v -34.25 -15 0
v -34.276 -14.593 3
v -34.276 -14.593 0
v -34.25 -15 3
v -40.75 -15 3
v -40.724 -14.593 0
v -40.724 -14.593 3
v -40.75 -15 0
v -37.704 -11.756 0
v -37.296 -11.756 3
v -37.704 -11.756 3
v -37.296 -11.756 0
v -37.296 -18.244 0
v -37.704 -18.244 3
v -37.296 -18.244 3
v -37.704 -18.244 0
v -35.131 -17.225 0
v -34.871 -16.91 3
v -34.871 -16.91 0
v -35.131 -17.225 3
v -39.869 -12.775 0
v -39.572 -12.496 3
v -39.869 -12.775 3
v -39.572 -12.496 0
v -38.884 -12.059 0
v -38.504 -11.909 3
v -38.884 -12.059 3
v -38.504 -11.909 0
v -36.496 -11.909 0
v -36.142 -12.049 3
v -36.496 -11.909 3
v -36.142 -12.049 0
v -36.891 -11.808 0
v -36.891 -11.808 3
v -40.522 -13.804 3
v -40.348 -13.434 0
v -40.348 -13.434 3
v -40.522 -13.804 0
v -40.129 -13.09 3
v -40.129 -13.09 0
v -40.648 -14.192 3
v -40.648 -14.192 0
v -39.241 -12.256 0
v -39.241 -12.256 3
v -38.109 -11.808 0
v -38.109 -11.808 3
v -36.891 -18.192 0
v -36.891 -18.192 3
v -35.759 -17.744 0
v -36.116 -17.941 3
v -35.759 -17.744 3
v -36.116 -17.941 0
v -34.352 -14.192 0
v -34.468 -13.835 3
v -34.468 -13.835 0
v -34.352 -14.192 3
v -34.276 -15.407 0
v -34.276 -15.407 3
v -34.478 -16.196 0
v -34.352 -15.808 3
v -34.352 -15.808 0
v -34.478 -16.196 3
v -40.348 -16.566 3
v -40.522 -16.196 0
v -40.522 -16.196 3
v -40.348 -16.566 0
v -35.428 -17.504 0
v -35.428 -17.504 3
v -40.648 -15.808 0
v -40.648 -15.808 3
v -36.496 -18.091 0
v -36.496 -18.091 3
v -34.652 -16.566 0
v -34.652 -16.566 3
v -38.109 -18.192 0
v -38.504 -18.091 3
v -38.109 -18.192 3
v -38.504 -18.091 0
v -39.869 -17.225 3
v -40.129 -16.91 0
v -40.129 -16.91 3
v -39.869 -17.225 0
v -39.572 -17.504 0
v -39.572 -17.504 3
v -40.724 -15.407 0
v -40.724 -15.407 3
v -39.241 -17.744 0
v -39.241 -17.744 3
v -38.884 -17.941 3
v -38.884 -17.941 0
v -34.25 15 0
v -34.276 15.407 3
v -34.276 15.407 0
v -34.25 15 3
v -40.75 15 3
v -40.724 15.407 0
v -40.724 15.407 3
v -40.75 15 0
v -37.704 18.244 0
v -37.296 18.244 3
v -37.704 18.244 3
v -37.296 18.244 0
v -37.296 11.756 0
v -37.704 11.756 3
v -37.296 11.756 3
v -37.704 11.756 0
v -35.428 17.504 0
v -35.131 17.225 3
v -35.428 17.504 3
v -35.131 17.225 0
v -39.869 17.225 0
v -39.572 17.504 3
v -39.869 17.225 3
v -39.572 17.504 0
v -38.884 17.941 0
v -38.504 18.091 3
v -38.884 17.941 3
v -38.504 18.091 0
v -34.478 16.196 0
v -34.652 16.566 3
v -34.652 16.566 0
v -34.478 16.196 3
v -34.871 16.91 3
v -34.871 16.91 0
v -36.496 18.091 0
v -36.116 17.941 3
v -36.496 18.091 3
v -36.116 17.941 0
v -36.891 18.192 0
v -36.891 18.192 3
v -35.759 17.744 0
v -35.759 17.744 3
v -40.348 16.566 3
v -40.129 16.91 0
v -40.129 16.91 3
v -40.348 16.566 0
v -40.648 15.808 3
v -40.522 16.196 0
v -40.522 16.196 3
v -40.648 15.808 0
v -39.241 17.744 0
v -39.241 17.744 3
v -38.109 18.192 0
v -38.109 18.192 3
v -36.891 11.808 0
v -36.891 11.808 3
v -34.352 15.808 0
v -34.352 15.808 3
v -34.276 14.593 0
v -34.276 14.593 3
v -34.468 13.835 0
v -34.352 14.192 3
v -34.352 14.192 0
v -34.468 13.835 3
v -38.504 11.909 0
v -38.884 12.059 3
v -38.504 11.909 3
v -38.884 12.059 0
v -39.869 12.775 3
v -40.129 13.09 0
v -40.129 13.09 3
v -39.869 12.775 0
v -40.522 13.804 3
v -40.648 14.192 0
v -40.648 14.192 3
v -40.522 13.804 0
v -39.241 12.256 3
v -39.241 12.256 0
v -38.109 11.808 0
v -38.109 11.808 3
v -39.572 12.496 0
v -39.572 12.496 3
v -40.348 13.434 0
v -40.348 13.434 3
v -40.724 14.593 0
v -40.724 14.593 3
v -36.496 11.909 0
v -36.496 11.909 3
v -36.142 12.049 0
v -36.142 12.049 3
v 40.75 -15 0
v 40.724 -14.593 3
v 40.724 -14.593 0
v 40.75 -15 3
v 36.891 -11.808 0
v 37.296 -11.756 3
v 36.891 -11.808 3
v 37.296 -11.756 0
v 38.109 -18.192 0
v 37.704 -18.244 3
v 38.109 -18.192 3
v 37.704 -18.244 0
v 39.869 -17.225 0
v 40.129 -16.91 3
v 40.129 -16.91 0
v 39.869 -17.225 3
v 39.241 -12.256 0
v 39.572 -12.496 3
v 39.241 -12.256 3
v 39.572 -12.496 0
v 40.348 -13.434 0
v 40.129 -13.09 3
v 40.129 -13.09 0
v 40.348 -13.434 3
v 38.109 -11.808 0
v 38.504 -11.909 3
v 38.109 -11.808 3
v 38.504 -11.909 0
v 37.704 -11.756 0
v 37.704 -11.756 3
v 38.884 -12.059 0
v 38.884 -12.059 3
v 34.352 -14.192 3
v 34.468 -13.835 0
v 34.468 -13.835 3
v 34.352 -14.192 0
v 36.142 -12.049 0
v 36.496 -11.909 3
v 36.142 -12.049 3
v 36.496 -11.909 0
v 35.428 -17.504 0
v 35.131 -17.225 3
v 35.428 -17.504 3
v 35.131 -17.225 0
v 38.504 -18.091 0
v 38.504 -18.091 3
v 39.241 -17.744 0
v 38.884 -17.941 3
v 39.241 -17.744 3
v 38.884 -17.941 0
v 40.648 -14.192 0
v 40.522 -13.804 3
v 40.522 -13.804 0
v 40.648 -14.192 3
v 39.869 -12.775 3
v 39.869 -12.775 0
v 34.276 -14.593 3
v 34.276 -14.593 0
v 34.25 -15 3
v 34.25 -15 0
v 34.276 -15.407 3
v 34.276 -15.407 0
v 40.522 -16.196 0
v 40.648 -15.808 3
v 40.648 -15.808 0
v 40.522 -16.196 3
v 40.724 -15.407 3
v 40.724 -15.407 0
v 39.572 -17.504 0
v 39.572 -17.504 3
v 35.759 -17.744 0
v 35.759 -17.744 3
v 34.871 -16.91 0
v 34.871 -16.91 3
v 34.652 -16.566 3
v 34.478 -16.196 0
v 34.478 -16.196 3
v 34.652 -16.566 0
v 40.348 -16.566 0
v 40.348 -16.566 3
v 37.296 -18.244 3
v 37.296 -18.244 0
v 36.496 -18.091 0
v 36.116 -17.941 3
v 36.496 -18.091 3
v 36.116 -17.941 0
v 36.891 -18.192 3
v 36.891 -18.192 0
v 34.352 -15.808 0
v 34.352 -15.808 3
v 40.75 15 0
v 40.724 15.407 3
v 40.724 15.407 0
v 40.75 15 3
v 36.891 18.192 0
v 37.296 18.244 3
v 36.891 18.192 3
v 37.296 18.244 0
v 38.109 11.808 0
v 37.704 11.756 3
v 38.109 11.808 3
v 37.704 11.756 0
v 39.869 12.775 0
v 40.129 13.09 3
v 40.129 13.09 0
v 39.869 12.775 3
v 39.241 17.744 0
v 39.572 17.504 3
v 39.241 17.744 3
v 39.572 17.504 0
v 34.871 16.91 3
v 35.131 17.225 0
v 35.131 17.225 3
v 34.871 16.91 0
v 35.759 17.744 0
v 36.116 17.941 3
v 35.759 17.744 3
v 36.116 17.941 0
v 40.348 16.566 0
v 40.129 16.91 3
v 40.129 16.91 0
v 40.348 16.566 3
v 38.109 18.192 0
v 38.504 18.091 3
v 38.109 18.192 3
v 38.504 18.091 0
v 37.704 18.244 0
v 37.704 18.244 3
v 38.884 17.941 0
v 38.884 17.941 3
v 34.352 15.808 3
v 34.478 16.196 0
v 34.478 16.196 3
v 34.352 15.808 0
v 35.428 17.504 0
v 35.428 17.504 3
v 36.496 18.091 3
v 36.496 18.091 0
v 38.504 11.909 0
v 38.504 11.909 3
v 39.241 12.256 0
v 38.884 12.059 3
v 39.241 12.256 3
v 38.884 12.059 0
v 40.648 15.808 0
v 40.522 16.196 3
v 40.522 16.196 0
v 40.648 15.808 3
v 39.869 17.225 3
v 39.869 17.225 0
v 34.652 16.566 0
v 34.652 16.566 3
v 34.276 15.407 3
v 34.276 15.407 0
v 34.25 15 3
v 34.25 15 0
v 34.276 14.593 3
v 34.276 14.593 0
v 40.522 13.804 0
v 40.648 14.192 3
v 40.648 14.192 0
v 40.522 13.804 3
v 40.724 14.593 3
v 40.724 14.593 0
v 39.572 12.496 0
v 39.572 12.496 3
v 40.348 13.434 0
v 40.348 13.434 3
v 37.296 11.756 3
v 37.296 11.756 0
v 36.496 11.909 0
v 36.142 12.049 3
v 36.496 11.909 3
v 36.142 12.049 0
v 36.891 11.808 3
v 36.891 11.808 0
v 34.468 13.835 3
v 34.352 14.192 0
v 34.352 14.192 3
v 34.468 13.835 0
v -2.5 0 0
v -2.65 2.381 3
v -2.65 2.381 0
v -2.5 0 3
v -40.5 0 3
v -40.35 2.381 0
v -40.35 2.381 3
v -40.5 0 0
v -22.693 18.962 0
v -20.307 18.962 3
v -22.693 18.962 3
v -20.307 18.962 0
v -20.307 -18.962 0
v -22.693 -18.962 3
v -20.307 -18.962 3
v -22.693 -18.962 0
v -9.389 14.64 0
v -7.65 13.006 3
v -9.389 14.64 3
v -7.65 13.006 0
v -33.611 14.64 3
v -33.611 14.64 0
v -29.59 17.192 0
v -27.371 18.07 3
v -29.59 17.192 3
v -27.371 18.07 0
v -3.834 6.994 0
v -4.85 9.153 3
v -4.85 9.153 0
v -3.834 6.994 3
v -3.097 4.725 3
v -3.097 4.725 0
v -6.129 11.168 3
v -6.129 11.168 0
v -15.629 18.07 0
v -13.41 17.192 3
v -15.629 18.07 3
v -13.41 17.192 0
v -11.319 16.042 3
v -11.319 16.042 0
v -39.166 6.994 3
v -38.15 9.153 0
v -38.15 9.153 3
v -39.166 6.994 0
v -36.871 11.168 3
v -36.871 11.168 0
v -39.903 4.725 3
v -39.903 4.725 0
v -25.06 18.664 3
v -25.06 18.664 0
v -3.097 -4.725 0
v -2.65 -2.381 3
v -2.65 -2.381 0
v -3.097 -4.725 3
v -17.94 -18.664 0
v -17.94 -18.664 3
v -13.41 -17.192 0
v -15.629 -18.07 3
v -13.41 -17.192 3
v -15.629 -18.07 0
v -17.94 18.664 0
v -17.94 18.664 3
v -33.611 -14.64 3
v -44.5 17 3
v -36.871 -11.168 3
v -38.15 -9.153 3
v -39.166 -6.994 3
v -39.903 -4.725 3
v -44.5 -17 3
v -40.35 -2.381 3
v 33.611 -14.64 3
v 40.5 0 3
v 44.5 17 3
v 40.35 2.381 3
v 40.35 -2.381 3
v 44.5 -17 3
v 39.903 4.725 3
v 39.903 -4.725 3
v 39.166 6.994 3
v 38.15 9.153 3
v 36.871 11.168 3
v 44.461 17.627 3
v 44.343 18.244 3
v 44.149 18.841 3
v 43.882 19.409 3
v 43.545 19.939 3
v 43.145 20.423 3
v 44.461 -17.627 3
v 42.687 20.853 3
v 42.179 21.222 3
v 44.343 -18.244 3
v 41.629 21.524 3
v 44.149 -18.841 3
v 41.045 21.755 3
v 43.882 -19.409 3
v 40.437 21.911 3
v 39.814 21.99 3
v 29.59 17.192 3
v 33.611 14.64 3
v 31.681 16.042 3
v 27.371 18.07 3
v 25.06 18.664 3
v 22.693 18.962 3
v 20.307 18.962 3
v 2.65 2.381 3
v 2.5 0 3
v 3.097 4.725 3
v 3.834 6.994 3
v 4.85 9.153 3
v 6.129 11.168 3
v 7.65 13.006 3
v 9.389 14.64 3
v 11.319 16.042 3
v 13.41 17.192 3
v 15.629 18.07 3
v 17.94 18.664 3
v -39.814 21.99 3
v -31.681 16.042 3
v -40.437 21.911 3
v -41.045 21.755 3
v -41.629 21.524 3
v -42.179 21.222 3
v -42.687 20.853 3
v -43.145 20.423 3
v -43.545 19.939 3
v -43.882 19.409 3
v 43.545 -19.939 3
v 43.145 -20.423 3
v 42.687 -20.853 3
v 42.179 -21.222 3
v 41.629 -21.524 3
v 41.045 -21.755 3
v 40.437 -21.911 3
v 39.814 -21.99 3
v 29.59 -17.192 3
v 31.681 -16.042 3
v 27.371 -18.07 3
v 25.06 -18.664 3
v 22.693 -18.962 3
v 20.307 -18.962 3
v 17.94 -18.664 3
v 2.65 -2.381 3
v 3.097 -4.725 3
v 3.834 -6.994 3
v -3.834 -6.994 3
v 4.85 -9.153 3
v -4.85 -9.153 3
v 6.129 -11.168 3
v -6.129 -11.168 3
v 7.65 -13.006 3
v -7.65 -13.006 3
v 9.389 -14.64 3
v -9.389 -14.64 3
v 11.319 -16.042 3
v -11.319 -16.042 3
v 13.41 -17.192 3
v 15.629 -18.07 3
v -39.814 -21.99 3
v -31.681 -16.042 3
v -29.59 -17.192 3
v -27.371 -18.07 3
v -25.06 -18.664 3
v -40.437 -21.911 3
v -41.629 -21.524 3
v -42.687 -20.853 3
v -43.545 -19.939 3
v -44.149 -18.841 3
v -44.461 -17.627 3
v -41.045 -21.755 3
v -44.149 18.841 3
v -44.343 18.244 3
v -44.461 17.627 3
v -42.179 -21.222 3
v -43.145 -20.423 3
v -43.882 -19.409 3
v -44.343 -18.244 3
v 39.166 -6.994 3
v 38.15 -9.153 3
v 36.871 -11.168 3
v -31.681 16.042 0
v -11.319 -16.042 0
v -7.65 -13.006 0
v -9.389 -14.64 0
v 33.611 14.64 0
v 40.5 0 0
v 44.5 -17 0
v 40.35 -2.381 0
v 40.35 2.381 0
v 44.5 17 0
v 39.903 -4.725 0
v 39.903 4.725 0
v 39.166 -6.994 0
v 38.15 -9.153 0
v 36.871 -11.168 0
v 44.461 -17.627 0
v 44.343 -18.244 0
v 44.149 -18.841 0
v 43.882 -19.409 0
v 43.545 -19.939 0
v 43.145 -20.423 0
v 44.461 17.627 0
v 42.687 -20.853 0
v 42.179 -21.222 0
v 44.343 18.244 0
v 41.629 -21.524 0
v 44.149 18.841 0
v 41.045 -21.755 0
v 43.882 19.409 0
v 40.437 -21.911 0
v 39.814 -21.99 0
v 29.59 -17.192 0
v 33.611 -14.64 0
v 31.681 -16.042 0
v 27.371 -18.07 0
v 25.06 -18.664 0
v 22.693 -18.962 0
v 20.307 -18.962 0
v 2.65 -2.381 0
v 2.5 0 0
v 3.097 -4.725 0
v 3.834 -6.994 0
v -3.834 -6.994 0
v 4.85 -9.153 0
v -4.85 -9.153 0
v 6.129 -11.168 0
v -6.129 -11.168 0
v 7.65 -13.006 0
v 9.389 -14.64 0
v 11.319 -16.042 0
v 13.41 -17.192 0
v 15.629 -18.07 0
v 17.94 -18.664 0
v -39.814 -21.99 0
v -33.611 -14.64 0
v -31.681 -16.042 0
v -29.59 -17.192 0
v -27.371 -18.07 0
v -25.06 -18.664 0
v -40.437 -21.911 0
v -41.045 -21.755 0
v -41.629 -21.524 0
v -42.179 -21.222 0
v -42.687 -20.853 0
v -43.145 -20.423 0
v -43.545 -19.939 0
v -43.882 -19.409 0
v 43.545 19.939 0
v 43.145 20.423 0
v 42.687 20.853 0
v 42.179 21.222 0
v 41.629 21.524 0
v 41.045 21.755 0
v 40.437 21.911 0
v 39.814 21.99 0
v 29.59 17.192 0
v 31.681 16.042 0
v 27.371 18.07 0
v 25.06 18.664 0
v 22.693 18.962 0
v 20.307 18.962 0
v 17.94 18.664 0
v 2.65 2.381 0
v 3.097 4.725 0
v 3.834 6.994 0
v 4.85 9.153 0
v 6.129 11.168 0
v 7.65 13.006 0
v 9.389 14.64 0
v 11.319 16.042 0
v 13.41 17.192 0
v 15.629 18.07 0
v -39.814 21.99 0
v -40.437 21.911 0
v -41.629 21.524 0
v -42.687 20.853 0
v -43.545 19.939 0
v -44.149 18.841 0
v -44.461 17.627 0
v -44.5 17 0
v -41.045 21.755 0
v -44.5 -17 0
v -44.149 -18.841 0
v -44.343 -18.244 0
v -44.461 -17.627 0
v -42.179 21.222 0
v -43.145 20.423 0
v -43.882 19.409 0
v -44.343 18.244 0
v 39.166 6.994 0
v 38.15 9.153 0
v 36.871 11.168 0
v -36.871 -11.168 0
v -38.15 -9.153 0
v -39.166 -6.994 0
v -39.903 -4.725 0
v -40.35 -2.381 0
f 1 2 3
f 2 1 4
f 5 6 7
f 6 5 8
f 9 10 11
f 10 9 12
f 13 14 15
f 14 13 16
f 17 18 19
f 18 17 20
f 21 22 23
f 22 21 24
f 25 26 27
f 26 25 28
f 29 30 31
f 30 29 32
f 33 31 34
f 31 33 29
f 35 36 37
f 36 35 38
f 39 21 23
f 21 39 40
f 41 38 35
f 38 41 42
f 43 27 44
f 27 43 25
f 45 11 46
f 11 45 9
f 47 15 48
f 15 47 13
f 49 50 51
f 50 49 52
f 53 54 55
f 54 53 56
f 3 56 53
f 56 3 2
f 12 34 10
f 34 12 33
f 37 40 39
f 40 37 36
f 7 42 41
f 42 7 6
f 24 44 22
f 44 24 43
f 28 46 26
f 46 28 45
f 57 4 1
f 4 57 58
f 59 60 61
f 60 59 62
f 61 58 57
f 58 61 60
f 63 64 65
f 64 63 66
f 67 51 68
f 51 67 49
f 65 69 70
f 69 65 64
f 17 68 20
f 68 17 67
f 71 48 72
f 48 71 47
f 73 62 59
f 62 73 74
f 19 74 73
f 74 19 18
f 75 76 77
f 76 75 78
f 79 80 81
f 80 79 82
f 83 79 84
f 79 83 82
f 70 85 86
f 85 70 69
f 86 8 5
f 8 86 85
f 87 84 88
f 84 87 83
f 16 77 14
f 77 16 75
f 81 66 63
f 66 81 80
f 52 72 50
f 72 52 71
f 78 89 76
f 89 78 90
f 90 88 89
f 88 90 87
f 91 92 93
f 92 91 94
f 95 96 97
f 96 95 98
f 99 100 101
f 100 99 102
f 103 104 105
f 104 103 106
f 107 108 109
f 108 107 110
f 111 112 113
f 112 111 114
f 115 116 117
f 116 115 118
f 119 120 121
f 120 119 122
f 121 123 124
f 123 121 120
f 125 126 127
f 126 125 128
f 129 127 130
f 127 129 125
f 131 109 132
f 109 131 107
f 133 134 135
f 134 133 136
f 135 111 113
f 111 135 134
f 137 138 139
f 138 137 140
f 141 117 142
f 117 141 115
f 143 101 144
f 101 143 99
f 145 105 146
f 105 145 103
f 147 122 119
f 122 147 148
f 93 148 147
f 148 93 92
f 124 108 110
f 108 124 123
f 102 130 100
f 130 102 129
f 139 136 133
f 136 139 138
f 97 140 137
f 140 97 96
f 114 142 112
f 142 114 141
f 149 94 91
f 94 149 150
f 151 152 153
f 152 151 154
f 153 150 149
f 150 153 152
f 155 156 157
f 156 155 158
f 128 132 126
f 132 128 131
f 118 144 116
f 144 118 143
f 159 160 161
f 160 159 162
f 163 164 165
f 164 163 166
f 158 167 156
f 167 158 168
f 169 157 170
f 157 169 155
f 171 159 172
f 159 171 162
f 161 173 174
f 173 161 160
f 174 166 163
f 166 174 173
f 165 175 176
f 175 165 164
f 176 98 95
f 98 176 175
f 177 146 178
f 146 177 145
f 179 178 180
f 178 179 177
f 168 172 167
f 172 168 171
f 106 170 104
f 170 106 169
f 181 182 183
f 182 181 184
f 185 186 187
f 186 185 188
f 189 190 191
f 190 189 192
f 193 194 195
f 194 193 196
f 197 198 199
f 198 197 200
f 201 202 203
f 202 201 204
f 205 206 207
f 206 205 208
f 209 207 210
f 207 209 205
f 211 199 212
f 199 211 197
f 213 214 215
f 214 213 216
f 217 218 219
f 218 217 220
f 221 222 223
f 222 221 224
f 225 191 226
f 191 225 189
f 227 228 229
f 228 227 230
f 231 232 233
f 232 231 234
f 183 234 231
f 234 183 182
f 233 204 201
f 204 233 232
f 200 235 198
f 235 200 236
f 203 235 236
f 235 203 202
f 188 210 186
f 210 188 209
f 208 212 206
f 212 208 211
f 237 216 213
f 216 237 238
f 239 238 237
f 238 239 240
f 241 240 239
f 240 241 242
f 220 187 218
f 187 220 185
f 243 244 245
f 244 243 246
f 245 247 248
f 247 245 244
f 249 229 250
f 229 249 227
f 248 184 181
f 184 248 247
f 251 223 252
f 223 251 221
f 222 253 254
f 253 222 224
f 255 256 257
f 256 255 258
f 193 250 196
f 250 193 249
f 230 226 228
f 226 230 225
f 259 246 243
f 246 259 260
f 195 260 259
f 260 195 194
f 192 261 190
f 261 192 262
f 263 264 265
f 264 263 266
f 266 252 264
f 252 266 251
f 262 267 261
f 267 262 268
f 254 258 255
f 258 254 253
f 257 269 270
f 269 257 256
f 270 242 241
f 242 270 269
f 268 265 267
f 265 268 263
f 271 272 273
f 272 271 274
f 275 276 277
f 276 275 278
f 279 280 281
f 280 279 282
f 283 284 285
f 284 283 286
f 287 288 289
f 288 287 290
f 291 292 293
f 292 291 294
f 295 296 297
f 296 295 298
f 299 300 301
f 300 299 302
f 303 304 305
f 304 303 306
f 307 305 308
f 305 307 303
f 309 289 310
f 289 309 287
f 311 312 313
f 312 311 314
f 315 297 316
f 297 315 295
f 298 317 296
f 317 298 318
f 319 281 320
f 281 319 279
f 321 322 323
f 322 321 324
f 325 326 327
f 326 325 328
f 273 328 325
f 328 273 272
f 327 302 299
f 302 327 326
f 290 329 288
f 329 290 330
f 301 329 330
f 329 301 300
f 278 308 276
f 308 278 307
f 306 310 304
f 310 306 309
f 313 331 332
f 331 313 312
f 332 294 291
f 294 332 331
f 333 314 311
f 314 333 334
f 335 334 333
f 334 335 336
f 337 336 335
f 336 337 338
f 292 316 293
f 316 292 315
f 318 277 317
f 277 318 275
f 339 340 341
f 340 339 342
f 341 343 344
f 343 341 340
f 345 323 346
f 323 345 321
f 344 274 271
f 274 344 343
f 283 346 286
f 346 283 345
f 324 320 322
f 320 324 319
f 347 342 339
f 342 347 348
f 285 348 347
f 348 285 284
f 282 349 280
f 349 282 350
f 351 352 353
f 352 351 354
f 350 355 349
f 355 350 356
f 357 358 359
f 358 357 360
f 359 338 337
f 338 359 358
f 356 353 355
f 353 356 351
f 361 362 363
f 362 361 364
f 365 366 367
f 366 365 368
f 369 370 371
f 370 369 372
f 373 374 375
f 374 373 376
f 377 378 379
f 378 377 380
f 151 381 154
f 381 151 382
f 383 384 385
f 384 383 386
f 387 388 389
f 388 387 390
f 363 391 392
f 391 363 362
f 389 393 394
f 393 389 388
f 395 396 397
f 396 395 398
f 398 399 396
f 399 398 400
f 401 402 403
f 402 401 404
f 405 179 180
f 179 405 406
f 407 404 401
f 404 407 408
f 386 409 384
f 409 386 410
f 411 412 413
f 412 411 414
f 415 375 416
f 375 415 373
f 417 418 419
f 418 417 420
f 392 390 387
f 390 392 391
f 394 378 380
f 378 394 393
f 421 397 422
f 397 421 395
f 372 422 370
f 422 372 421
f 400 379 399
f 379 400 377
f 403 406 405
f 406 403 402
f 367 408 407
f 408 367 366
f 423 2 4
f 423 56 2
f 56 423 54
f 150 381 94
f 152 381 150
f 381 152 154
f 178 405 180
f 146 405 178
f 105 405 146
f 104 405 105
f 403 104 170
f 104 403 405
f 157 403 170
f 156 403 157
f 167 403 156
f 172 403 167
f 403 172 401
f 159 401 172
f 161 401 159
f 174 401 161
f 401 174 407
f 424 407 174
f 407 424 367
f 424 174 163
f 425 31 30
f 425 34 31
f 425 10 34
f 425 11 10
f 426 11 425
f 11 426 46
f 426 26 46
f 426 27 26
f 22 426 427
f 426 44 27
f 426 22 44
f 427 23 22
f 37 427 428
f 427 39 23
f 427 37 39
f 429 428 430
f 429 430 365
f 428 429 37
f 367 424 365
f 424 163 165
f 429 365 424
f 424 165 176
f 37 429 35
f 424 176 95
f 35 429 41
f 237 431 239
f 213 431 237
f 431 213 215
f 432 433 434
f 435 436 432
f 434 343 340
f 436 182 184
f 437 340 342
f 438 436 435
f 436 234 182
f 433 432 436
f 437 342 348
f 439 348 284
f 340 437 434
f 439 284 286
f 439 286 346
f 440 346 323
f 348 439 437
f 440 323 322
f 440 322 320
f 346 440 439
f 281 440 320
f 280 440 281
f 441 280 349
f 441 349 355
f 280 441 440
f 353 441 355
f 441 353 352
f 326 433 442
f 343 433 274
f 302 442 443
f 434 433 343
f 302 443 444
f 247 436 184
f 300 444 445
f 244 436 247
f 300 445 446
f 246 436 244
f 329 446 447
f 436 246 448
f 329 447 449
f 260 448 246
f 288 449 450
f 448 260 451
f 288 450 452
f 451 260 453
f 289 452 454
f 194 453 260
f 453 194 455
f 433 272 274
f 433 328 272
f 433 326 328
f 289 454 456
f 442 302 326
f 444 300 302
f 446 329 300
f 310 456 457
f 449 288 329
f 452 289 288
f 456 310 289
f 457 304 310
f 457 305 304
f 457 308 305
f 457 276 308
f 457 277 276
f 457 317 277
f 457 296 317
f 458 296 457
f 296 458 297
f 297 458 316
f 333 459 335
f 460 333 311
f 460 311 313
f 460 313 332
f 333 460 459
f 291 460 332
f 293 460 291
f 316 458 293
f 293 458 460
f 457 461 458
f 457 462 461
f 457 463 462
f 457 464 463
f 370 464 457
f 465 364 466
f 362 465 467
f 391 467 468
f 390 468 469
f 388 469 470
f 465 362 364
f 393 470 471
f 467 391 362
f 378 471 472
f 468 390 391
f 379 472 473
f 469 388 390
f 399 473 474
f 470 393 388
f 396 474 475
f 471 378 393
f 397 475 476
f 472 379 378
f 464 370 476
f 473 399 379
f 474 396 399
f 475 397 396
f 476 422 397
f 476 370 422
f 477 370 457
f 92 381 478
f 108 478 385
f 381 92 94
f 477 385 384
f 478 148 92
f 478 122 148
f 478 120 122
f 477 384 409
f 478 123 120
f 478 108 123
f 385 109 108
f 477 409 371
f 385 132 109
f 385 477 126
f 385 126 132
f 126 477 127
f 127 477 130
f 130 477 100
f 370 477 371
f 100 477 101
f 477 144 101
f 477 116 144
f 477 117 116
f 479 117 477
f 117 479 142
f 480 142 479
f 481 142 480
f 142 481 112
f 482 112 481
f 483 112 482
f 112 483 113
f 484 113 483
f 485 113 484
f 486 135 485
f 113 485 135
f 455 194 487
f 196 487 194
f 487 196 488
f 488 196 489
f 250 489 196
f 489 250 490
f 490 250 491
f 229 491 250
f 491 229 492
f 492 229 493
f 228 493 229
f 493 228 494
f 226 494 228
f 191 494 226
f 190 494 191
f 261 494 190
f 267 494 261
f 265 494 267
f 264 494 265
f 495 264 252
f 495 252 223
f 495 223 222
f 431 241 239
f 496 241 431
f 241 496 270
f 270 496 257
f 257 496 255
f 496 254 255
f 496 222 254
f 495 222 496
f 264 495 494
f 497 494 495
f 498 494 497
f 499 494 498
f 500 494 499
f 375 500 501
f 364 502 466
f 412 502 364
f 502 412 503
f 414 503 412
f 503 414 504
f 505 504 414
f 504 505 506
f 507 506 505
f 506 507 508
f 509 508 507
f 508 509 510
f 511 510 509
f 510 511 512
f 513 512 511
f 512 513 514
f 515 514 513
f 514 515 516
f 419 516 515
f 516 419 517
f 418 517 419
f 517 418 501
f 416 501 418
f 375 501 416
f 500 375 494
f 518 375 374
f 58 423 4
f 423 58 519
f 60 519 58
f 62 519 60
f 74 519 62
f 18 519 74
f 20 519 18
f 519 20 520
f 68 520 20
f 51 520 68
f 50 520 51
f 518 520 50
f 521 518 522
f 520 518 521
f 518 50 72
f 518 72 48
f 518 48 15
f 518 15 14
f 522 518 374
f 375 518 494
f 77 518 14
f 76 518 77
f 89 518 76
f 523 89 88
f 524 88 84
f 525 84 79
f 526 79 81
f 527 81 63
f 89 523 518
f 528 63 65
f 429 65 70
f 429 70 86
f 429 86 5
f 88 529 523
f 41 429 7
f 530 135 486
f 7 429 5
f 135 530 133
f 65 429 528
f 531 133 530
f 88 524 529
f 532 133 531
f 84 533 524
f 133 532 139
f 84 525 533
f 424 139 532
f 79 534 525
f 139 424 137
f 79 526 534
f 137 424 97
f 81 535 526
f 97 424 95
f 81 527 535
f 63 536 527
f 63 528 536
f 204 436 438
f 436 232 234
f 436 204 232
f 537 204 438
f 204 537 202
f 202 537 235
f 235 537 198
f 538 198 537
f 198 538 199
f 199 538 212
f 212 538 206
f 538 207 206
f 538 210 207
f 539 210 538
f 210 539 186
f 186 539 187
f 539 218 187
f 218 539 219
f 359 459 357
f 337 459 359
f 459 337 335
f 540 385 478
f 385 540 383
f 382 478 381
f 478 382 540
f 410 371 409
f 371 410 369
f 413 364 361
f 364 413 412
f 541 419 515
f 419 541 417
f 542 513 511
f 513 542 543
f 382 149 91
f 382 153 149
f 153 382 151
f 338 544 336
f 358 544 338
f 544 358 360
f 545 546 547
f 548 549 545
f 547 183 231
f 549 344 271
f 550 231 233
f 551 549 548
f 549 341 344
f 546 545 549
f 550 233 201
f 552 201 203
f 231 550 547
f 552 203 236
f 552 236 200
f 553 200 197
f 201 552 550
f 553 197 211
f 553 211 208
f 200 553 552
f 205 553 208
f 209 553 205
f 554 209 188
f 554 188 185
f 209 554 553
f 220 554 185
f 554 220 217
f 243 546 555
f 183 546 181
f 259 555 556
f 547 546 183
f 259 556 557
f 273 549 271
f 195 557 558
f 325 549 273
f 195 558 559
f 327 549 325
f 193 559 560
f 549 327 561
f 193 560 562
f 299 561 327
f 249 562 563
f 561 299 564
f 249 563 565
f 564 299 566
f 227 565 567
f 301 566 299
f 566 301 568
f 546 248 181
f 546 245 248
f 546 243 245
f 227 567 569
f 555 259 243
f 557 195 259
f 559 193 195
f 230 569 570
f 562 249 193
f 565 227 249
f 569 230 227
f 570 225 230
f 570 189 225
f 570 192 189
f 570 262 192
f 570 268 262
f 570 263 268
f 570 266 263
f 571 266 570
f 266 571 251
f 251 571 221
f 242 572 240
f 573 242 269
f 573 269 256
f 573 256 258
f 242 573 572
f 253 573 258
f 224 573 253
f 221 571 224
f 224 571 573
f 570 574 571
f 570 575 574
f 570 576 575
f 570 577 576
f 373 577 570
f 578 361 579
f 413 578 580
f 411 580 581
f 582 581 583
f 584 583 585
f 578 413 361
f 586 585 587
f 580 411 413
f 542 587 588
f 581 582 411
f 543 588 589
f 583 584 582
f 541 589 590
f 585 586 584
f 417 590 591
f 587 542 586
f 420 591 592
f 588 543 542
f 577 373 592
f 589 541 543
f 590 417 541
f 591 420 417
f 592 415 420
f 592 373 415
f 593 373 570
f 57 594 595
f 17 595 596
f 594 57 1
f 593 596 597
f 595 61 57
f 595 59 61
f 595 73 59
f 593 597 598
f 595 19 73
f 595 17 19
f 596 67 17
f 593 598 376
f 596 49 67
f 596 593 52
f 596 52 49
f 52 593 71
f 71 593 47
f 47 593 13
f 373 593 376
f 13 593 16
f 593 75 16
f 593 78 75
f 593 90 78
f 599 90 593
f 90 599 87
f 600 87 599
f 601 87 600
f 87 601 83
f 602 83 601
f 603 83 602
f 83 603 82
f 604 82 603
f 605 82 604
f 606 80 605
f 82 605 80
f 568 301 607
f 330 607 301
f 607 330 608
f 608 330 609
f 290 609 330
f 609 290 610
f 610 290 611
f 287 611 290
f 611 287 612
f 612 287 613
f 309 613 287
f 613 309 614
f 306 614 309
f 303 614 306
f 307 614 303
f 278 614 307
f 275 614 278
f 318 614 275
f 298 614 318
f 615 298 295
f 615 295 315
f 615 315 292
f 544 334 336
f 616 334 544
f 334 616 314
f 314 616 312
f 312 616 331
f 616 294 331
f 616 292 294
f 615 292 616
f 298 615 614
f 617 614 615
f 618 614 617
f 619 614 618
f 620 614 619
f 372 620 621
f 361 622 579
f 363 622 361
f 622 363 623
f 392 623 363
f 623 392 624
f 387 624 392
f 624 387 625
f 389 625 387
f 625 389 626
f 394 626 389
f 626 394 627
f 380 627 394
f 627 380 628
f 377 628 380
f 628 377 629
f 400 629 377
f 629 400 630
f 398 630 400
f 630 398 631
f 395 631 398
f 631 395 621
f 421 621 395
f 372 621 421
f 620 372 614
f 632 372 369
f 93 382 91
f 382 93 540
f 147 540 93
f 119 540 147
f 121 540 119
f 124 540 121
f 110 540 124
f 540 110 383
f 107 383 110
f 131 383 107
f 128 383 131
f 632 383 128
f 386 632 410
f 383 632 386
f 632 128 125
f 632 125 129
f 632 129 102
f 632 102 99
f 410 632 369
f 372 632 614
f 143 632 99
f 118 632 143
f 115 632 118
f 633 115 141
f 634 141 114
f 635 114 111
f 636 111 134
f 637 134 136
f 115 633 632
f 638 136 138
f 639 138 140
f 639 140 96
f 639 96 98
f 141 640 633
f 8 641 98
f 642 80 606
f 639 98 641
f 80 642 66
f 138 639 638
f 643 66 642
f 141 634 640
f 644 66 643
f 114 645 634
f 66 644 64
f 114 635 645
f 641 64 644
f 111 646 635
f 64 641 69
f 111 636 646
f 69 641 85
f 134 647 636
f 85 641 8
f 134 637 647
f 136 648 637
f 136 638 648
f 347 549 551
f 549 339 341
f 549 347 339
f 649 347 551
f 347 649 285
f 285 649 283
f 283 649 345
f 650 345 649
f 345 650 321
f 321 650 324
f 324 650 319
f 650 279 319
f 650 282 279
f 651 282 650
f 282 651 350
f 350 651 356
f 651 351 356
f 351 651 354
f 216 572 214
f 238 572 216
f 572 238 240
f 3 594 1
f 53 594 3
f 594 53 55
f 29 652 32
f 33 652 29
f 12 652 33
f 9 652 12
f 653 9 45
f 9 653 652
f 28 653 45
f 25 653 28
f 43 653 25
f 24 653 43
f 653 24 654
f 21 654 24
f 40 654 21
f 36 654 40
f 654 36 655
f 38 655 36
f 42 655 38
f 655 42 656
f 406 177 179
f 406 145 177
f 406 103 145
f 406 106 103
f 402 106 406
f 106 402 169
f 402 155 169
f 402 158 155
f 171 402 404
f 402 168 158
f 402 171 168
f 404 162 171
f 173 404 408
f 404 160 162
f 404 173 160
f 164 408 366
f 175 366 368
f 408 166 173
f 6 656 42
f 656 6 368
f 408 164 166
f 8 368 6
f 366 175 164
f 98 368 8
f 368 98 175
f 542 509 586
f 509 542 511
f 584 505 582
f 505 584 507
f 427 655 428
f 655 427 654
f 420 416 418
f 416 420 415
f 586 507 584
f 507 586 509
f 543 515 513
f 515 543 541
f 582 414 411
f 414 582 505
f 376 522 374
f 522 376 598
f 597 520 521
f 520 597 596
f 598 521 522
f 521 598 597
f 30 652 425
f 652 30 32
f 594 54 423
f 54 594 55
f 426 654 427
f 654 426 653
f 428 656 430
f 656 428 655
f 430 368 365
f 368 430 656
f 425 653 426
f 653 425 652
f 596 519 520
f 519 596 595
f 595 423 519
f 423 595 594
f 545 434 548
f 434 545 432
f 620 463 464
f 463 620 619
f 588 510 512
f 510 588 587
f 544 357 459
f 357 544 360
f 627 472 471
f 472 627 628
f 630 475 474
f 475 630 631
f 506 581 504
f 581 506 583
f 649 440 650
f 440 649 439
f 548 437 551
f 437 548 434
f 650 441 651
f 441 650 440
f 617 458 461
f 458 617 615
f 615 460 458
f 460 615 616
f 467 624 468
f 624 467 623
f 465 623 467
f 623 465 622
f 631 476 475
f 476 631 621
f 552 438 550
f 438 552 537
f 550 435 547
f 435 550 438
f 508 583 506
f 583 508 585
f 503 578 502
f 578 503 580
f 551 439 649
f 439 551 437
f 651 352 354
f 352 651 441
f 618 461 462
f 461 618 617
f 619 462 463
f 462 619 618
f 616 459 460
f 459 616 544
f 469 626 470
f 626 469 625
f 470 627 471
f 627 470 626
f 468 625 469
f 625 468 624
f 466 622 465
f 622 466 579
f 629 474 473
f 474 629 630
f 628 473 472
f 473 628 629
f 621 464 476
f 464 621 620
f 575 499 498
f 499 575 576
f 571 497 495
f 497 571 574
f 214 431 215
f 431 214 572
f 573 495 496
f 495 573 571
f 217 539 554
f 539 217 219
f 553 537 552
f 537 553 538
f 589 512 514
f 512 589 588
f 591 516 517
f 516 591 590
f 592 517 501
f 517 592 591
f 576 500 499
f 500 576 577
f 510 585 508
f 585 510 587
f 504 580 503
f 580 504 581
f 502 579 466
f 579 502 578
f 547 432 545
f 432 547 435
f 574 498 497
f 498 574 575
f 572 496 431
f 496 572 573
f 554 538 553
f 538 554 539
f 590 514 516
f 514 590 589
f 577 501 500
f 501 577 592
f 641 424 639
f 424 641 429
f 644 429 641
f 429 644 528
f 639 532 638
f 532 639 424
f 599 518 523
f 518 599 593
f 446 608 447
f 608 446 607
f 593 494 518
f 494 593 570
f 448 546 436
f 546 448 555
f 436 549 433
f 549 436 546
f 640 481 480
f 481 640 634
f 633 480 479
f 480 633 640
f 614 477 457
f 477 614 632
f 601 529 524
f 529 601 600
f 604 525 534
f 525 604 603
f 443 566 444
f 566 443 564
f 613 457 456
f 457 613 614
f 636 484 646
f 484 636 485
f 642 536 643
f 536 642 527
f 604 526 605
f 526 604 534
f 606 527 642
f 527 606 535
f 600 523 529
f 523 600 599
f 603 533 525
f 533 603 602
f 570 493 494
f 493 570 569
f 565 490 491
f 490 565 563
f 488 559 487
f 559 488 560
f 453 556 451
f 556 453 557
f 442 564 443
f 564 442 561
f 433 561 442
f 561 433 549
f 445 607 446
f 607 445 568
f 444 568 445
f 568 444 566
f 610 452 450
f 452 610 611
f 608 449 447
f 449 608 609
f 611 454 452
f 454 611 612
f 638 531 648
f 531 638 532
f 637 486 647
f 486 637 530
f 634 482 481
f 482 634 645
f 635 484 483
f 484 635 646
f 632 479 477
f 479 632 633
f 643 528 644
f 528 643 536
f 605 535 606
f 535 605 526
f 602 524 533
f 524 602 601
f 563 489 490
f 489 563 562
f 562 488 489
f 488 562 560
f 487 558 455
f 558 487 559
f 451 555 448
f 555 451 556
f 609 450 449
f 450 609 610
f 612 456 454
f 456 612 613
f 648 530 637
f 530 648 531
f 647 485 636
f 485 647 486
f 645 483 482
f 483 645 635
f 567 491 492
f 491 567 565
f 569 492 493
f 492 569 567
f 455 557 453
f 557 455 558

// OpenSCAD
$fn = 50;


difference() {
	union() {
		hull() {
			translate(v = [-39.5000000000, 17.0000000000, 0]) {
				cylinder(h = 3, r = 5);
			}
			translate(v = [39.5000000000, 17.0000000000, 0]) {
				cylinder(h = 3, r = 5);
			}
			translate(v = [-39.5000000000, -17.0000000000, 0]) {
				cylinder(h = 3, r = 5);
			}
			translate(v = [39.5000000000, -17.0000000000, 0]) {
				cylinder(h = 3, r = 5);
			}
		}
	}
	union() {
		#translate(v = [-37.5000000000, -15.0000000000, -100.0000000000]) {
			cylinder(h = 200, r = 3.2500000000);
		}
		#translate(v = [-37.5000000000, 15.0000000000, -100.0000000000]) {
			cylinder(h = 200, r = 3.2500000000);
		}
		#translate(v = [37.5000000000, -15.0000000000, -100.0000000000]) {
			cylinder(h = 200, r = 3.2500000000);
		}
		#translate(v = [37.5000000000, 15.0000000000, -100.0000000000]) {
			cylinder(h = 200, r = 3.2500000000);
		}
		#translate(v = [-21.5000000000, 0, 0]) {
			cylinder(h = 3, r = 19.0000000000);
		}
		#translate(v = [21.5000000000, 0, 0]) {
			cylinder(h = 3, r = 19.0000000000);
		}
	}
}
